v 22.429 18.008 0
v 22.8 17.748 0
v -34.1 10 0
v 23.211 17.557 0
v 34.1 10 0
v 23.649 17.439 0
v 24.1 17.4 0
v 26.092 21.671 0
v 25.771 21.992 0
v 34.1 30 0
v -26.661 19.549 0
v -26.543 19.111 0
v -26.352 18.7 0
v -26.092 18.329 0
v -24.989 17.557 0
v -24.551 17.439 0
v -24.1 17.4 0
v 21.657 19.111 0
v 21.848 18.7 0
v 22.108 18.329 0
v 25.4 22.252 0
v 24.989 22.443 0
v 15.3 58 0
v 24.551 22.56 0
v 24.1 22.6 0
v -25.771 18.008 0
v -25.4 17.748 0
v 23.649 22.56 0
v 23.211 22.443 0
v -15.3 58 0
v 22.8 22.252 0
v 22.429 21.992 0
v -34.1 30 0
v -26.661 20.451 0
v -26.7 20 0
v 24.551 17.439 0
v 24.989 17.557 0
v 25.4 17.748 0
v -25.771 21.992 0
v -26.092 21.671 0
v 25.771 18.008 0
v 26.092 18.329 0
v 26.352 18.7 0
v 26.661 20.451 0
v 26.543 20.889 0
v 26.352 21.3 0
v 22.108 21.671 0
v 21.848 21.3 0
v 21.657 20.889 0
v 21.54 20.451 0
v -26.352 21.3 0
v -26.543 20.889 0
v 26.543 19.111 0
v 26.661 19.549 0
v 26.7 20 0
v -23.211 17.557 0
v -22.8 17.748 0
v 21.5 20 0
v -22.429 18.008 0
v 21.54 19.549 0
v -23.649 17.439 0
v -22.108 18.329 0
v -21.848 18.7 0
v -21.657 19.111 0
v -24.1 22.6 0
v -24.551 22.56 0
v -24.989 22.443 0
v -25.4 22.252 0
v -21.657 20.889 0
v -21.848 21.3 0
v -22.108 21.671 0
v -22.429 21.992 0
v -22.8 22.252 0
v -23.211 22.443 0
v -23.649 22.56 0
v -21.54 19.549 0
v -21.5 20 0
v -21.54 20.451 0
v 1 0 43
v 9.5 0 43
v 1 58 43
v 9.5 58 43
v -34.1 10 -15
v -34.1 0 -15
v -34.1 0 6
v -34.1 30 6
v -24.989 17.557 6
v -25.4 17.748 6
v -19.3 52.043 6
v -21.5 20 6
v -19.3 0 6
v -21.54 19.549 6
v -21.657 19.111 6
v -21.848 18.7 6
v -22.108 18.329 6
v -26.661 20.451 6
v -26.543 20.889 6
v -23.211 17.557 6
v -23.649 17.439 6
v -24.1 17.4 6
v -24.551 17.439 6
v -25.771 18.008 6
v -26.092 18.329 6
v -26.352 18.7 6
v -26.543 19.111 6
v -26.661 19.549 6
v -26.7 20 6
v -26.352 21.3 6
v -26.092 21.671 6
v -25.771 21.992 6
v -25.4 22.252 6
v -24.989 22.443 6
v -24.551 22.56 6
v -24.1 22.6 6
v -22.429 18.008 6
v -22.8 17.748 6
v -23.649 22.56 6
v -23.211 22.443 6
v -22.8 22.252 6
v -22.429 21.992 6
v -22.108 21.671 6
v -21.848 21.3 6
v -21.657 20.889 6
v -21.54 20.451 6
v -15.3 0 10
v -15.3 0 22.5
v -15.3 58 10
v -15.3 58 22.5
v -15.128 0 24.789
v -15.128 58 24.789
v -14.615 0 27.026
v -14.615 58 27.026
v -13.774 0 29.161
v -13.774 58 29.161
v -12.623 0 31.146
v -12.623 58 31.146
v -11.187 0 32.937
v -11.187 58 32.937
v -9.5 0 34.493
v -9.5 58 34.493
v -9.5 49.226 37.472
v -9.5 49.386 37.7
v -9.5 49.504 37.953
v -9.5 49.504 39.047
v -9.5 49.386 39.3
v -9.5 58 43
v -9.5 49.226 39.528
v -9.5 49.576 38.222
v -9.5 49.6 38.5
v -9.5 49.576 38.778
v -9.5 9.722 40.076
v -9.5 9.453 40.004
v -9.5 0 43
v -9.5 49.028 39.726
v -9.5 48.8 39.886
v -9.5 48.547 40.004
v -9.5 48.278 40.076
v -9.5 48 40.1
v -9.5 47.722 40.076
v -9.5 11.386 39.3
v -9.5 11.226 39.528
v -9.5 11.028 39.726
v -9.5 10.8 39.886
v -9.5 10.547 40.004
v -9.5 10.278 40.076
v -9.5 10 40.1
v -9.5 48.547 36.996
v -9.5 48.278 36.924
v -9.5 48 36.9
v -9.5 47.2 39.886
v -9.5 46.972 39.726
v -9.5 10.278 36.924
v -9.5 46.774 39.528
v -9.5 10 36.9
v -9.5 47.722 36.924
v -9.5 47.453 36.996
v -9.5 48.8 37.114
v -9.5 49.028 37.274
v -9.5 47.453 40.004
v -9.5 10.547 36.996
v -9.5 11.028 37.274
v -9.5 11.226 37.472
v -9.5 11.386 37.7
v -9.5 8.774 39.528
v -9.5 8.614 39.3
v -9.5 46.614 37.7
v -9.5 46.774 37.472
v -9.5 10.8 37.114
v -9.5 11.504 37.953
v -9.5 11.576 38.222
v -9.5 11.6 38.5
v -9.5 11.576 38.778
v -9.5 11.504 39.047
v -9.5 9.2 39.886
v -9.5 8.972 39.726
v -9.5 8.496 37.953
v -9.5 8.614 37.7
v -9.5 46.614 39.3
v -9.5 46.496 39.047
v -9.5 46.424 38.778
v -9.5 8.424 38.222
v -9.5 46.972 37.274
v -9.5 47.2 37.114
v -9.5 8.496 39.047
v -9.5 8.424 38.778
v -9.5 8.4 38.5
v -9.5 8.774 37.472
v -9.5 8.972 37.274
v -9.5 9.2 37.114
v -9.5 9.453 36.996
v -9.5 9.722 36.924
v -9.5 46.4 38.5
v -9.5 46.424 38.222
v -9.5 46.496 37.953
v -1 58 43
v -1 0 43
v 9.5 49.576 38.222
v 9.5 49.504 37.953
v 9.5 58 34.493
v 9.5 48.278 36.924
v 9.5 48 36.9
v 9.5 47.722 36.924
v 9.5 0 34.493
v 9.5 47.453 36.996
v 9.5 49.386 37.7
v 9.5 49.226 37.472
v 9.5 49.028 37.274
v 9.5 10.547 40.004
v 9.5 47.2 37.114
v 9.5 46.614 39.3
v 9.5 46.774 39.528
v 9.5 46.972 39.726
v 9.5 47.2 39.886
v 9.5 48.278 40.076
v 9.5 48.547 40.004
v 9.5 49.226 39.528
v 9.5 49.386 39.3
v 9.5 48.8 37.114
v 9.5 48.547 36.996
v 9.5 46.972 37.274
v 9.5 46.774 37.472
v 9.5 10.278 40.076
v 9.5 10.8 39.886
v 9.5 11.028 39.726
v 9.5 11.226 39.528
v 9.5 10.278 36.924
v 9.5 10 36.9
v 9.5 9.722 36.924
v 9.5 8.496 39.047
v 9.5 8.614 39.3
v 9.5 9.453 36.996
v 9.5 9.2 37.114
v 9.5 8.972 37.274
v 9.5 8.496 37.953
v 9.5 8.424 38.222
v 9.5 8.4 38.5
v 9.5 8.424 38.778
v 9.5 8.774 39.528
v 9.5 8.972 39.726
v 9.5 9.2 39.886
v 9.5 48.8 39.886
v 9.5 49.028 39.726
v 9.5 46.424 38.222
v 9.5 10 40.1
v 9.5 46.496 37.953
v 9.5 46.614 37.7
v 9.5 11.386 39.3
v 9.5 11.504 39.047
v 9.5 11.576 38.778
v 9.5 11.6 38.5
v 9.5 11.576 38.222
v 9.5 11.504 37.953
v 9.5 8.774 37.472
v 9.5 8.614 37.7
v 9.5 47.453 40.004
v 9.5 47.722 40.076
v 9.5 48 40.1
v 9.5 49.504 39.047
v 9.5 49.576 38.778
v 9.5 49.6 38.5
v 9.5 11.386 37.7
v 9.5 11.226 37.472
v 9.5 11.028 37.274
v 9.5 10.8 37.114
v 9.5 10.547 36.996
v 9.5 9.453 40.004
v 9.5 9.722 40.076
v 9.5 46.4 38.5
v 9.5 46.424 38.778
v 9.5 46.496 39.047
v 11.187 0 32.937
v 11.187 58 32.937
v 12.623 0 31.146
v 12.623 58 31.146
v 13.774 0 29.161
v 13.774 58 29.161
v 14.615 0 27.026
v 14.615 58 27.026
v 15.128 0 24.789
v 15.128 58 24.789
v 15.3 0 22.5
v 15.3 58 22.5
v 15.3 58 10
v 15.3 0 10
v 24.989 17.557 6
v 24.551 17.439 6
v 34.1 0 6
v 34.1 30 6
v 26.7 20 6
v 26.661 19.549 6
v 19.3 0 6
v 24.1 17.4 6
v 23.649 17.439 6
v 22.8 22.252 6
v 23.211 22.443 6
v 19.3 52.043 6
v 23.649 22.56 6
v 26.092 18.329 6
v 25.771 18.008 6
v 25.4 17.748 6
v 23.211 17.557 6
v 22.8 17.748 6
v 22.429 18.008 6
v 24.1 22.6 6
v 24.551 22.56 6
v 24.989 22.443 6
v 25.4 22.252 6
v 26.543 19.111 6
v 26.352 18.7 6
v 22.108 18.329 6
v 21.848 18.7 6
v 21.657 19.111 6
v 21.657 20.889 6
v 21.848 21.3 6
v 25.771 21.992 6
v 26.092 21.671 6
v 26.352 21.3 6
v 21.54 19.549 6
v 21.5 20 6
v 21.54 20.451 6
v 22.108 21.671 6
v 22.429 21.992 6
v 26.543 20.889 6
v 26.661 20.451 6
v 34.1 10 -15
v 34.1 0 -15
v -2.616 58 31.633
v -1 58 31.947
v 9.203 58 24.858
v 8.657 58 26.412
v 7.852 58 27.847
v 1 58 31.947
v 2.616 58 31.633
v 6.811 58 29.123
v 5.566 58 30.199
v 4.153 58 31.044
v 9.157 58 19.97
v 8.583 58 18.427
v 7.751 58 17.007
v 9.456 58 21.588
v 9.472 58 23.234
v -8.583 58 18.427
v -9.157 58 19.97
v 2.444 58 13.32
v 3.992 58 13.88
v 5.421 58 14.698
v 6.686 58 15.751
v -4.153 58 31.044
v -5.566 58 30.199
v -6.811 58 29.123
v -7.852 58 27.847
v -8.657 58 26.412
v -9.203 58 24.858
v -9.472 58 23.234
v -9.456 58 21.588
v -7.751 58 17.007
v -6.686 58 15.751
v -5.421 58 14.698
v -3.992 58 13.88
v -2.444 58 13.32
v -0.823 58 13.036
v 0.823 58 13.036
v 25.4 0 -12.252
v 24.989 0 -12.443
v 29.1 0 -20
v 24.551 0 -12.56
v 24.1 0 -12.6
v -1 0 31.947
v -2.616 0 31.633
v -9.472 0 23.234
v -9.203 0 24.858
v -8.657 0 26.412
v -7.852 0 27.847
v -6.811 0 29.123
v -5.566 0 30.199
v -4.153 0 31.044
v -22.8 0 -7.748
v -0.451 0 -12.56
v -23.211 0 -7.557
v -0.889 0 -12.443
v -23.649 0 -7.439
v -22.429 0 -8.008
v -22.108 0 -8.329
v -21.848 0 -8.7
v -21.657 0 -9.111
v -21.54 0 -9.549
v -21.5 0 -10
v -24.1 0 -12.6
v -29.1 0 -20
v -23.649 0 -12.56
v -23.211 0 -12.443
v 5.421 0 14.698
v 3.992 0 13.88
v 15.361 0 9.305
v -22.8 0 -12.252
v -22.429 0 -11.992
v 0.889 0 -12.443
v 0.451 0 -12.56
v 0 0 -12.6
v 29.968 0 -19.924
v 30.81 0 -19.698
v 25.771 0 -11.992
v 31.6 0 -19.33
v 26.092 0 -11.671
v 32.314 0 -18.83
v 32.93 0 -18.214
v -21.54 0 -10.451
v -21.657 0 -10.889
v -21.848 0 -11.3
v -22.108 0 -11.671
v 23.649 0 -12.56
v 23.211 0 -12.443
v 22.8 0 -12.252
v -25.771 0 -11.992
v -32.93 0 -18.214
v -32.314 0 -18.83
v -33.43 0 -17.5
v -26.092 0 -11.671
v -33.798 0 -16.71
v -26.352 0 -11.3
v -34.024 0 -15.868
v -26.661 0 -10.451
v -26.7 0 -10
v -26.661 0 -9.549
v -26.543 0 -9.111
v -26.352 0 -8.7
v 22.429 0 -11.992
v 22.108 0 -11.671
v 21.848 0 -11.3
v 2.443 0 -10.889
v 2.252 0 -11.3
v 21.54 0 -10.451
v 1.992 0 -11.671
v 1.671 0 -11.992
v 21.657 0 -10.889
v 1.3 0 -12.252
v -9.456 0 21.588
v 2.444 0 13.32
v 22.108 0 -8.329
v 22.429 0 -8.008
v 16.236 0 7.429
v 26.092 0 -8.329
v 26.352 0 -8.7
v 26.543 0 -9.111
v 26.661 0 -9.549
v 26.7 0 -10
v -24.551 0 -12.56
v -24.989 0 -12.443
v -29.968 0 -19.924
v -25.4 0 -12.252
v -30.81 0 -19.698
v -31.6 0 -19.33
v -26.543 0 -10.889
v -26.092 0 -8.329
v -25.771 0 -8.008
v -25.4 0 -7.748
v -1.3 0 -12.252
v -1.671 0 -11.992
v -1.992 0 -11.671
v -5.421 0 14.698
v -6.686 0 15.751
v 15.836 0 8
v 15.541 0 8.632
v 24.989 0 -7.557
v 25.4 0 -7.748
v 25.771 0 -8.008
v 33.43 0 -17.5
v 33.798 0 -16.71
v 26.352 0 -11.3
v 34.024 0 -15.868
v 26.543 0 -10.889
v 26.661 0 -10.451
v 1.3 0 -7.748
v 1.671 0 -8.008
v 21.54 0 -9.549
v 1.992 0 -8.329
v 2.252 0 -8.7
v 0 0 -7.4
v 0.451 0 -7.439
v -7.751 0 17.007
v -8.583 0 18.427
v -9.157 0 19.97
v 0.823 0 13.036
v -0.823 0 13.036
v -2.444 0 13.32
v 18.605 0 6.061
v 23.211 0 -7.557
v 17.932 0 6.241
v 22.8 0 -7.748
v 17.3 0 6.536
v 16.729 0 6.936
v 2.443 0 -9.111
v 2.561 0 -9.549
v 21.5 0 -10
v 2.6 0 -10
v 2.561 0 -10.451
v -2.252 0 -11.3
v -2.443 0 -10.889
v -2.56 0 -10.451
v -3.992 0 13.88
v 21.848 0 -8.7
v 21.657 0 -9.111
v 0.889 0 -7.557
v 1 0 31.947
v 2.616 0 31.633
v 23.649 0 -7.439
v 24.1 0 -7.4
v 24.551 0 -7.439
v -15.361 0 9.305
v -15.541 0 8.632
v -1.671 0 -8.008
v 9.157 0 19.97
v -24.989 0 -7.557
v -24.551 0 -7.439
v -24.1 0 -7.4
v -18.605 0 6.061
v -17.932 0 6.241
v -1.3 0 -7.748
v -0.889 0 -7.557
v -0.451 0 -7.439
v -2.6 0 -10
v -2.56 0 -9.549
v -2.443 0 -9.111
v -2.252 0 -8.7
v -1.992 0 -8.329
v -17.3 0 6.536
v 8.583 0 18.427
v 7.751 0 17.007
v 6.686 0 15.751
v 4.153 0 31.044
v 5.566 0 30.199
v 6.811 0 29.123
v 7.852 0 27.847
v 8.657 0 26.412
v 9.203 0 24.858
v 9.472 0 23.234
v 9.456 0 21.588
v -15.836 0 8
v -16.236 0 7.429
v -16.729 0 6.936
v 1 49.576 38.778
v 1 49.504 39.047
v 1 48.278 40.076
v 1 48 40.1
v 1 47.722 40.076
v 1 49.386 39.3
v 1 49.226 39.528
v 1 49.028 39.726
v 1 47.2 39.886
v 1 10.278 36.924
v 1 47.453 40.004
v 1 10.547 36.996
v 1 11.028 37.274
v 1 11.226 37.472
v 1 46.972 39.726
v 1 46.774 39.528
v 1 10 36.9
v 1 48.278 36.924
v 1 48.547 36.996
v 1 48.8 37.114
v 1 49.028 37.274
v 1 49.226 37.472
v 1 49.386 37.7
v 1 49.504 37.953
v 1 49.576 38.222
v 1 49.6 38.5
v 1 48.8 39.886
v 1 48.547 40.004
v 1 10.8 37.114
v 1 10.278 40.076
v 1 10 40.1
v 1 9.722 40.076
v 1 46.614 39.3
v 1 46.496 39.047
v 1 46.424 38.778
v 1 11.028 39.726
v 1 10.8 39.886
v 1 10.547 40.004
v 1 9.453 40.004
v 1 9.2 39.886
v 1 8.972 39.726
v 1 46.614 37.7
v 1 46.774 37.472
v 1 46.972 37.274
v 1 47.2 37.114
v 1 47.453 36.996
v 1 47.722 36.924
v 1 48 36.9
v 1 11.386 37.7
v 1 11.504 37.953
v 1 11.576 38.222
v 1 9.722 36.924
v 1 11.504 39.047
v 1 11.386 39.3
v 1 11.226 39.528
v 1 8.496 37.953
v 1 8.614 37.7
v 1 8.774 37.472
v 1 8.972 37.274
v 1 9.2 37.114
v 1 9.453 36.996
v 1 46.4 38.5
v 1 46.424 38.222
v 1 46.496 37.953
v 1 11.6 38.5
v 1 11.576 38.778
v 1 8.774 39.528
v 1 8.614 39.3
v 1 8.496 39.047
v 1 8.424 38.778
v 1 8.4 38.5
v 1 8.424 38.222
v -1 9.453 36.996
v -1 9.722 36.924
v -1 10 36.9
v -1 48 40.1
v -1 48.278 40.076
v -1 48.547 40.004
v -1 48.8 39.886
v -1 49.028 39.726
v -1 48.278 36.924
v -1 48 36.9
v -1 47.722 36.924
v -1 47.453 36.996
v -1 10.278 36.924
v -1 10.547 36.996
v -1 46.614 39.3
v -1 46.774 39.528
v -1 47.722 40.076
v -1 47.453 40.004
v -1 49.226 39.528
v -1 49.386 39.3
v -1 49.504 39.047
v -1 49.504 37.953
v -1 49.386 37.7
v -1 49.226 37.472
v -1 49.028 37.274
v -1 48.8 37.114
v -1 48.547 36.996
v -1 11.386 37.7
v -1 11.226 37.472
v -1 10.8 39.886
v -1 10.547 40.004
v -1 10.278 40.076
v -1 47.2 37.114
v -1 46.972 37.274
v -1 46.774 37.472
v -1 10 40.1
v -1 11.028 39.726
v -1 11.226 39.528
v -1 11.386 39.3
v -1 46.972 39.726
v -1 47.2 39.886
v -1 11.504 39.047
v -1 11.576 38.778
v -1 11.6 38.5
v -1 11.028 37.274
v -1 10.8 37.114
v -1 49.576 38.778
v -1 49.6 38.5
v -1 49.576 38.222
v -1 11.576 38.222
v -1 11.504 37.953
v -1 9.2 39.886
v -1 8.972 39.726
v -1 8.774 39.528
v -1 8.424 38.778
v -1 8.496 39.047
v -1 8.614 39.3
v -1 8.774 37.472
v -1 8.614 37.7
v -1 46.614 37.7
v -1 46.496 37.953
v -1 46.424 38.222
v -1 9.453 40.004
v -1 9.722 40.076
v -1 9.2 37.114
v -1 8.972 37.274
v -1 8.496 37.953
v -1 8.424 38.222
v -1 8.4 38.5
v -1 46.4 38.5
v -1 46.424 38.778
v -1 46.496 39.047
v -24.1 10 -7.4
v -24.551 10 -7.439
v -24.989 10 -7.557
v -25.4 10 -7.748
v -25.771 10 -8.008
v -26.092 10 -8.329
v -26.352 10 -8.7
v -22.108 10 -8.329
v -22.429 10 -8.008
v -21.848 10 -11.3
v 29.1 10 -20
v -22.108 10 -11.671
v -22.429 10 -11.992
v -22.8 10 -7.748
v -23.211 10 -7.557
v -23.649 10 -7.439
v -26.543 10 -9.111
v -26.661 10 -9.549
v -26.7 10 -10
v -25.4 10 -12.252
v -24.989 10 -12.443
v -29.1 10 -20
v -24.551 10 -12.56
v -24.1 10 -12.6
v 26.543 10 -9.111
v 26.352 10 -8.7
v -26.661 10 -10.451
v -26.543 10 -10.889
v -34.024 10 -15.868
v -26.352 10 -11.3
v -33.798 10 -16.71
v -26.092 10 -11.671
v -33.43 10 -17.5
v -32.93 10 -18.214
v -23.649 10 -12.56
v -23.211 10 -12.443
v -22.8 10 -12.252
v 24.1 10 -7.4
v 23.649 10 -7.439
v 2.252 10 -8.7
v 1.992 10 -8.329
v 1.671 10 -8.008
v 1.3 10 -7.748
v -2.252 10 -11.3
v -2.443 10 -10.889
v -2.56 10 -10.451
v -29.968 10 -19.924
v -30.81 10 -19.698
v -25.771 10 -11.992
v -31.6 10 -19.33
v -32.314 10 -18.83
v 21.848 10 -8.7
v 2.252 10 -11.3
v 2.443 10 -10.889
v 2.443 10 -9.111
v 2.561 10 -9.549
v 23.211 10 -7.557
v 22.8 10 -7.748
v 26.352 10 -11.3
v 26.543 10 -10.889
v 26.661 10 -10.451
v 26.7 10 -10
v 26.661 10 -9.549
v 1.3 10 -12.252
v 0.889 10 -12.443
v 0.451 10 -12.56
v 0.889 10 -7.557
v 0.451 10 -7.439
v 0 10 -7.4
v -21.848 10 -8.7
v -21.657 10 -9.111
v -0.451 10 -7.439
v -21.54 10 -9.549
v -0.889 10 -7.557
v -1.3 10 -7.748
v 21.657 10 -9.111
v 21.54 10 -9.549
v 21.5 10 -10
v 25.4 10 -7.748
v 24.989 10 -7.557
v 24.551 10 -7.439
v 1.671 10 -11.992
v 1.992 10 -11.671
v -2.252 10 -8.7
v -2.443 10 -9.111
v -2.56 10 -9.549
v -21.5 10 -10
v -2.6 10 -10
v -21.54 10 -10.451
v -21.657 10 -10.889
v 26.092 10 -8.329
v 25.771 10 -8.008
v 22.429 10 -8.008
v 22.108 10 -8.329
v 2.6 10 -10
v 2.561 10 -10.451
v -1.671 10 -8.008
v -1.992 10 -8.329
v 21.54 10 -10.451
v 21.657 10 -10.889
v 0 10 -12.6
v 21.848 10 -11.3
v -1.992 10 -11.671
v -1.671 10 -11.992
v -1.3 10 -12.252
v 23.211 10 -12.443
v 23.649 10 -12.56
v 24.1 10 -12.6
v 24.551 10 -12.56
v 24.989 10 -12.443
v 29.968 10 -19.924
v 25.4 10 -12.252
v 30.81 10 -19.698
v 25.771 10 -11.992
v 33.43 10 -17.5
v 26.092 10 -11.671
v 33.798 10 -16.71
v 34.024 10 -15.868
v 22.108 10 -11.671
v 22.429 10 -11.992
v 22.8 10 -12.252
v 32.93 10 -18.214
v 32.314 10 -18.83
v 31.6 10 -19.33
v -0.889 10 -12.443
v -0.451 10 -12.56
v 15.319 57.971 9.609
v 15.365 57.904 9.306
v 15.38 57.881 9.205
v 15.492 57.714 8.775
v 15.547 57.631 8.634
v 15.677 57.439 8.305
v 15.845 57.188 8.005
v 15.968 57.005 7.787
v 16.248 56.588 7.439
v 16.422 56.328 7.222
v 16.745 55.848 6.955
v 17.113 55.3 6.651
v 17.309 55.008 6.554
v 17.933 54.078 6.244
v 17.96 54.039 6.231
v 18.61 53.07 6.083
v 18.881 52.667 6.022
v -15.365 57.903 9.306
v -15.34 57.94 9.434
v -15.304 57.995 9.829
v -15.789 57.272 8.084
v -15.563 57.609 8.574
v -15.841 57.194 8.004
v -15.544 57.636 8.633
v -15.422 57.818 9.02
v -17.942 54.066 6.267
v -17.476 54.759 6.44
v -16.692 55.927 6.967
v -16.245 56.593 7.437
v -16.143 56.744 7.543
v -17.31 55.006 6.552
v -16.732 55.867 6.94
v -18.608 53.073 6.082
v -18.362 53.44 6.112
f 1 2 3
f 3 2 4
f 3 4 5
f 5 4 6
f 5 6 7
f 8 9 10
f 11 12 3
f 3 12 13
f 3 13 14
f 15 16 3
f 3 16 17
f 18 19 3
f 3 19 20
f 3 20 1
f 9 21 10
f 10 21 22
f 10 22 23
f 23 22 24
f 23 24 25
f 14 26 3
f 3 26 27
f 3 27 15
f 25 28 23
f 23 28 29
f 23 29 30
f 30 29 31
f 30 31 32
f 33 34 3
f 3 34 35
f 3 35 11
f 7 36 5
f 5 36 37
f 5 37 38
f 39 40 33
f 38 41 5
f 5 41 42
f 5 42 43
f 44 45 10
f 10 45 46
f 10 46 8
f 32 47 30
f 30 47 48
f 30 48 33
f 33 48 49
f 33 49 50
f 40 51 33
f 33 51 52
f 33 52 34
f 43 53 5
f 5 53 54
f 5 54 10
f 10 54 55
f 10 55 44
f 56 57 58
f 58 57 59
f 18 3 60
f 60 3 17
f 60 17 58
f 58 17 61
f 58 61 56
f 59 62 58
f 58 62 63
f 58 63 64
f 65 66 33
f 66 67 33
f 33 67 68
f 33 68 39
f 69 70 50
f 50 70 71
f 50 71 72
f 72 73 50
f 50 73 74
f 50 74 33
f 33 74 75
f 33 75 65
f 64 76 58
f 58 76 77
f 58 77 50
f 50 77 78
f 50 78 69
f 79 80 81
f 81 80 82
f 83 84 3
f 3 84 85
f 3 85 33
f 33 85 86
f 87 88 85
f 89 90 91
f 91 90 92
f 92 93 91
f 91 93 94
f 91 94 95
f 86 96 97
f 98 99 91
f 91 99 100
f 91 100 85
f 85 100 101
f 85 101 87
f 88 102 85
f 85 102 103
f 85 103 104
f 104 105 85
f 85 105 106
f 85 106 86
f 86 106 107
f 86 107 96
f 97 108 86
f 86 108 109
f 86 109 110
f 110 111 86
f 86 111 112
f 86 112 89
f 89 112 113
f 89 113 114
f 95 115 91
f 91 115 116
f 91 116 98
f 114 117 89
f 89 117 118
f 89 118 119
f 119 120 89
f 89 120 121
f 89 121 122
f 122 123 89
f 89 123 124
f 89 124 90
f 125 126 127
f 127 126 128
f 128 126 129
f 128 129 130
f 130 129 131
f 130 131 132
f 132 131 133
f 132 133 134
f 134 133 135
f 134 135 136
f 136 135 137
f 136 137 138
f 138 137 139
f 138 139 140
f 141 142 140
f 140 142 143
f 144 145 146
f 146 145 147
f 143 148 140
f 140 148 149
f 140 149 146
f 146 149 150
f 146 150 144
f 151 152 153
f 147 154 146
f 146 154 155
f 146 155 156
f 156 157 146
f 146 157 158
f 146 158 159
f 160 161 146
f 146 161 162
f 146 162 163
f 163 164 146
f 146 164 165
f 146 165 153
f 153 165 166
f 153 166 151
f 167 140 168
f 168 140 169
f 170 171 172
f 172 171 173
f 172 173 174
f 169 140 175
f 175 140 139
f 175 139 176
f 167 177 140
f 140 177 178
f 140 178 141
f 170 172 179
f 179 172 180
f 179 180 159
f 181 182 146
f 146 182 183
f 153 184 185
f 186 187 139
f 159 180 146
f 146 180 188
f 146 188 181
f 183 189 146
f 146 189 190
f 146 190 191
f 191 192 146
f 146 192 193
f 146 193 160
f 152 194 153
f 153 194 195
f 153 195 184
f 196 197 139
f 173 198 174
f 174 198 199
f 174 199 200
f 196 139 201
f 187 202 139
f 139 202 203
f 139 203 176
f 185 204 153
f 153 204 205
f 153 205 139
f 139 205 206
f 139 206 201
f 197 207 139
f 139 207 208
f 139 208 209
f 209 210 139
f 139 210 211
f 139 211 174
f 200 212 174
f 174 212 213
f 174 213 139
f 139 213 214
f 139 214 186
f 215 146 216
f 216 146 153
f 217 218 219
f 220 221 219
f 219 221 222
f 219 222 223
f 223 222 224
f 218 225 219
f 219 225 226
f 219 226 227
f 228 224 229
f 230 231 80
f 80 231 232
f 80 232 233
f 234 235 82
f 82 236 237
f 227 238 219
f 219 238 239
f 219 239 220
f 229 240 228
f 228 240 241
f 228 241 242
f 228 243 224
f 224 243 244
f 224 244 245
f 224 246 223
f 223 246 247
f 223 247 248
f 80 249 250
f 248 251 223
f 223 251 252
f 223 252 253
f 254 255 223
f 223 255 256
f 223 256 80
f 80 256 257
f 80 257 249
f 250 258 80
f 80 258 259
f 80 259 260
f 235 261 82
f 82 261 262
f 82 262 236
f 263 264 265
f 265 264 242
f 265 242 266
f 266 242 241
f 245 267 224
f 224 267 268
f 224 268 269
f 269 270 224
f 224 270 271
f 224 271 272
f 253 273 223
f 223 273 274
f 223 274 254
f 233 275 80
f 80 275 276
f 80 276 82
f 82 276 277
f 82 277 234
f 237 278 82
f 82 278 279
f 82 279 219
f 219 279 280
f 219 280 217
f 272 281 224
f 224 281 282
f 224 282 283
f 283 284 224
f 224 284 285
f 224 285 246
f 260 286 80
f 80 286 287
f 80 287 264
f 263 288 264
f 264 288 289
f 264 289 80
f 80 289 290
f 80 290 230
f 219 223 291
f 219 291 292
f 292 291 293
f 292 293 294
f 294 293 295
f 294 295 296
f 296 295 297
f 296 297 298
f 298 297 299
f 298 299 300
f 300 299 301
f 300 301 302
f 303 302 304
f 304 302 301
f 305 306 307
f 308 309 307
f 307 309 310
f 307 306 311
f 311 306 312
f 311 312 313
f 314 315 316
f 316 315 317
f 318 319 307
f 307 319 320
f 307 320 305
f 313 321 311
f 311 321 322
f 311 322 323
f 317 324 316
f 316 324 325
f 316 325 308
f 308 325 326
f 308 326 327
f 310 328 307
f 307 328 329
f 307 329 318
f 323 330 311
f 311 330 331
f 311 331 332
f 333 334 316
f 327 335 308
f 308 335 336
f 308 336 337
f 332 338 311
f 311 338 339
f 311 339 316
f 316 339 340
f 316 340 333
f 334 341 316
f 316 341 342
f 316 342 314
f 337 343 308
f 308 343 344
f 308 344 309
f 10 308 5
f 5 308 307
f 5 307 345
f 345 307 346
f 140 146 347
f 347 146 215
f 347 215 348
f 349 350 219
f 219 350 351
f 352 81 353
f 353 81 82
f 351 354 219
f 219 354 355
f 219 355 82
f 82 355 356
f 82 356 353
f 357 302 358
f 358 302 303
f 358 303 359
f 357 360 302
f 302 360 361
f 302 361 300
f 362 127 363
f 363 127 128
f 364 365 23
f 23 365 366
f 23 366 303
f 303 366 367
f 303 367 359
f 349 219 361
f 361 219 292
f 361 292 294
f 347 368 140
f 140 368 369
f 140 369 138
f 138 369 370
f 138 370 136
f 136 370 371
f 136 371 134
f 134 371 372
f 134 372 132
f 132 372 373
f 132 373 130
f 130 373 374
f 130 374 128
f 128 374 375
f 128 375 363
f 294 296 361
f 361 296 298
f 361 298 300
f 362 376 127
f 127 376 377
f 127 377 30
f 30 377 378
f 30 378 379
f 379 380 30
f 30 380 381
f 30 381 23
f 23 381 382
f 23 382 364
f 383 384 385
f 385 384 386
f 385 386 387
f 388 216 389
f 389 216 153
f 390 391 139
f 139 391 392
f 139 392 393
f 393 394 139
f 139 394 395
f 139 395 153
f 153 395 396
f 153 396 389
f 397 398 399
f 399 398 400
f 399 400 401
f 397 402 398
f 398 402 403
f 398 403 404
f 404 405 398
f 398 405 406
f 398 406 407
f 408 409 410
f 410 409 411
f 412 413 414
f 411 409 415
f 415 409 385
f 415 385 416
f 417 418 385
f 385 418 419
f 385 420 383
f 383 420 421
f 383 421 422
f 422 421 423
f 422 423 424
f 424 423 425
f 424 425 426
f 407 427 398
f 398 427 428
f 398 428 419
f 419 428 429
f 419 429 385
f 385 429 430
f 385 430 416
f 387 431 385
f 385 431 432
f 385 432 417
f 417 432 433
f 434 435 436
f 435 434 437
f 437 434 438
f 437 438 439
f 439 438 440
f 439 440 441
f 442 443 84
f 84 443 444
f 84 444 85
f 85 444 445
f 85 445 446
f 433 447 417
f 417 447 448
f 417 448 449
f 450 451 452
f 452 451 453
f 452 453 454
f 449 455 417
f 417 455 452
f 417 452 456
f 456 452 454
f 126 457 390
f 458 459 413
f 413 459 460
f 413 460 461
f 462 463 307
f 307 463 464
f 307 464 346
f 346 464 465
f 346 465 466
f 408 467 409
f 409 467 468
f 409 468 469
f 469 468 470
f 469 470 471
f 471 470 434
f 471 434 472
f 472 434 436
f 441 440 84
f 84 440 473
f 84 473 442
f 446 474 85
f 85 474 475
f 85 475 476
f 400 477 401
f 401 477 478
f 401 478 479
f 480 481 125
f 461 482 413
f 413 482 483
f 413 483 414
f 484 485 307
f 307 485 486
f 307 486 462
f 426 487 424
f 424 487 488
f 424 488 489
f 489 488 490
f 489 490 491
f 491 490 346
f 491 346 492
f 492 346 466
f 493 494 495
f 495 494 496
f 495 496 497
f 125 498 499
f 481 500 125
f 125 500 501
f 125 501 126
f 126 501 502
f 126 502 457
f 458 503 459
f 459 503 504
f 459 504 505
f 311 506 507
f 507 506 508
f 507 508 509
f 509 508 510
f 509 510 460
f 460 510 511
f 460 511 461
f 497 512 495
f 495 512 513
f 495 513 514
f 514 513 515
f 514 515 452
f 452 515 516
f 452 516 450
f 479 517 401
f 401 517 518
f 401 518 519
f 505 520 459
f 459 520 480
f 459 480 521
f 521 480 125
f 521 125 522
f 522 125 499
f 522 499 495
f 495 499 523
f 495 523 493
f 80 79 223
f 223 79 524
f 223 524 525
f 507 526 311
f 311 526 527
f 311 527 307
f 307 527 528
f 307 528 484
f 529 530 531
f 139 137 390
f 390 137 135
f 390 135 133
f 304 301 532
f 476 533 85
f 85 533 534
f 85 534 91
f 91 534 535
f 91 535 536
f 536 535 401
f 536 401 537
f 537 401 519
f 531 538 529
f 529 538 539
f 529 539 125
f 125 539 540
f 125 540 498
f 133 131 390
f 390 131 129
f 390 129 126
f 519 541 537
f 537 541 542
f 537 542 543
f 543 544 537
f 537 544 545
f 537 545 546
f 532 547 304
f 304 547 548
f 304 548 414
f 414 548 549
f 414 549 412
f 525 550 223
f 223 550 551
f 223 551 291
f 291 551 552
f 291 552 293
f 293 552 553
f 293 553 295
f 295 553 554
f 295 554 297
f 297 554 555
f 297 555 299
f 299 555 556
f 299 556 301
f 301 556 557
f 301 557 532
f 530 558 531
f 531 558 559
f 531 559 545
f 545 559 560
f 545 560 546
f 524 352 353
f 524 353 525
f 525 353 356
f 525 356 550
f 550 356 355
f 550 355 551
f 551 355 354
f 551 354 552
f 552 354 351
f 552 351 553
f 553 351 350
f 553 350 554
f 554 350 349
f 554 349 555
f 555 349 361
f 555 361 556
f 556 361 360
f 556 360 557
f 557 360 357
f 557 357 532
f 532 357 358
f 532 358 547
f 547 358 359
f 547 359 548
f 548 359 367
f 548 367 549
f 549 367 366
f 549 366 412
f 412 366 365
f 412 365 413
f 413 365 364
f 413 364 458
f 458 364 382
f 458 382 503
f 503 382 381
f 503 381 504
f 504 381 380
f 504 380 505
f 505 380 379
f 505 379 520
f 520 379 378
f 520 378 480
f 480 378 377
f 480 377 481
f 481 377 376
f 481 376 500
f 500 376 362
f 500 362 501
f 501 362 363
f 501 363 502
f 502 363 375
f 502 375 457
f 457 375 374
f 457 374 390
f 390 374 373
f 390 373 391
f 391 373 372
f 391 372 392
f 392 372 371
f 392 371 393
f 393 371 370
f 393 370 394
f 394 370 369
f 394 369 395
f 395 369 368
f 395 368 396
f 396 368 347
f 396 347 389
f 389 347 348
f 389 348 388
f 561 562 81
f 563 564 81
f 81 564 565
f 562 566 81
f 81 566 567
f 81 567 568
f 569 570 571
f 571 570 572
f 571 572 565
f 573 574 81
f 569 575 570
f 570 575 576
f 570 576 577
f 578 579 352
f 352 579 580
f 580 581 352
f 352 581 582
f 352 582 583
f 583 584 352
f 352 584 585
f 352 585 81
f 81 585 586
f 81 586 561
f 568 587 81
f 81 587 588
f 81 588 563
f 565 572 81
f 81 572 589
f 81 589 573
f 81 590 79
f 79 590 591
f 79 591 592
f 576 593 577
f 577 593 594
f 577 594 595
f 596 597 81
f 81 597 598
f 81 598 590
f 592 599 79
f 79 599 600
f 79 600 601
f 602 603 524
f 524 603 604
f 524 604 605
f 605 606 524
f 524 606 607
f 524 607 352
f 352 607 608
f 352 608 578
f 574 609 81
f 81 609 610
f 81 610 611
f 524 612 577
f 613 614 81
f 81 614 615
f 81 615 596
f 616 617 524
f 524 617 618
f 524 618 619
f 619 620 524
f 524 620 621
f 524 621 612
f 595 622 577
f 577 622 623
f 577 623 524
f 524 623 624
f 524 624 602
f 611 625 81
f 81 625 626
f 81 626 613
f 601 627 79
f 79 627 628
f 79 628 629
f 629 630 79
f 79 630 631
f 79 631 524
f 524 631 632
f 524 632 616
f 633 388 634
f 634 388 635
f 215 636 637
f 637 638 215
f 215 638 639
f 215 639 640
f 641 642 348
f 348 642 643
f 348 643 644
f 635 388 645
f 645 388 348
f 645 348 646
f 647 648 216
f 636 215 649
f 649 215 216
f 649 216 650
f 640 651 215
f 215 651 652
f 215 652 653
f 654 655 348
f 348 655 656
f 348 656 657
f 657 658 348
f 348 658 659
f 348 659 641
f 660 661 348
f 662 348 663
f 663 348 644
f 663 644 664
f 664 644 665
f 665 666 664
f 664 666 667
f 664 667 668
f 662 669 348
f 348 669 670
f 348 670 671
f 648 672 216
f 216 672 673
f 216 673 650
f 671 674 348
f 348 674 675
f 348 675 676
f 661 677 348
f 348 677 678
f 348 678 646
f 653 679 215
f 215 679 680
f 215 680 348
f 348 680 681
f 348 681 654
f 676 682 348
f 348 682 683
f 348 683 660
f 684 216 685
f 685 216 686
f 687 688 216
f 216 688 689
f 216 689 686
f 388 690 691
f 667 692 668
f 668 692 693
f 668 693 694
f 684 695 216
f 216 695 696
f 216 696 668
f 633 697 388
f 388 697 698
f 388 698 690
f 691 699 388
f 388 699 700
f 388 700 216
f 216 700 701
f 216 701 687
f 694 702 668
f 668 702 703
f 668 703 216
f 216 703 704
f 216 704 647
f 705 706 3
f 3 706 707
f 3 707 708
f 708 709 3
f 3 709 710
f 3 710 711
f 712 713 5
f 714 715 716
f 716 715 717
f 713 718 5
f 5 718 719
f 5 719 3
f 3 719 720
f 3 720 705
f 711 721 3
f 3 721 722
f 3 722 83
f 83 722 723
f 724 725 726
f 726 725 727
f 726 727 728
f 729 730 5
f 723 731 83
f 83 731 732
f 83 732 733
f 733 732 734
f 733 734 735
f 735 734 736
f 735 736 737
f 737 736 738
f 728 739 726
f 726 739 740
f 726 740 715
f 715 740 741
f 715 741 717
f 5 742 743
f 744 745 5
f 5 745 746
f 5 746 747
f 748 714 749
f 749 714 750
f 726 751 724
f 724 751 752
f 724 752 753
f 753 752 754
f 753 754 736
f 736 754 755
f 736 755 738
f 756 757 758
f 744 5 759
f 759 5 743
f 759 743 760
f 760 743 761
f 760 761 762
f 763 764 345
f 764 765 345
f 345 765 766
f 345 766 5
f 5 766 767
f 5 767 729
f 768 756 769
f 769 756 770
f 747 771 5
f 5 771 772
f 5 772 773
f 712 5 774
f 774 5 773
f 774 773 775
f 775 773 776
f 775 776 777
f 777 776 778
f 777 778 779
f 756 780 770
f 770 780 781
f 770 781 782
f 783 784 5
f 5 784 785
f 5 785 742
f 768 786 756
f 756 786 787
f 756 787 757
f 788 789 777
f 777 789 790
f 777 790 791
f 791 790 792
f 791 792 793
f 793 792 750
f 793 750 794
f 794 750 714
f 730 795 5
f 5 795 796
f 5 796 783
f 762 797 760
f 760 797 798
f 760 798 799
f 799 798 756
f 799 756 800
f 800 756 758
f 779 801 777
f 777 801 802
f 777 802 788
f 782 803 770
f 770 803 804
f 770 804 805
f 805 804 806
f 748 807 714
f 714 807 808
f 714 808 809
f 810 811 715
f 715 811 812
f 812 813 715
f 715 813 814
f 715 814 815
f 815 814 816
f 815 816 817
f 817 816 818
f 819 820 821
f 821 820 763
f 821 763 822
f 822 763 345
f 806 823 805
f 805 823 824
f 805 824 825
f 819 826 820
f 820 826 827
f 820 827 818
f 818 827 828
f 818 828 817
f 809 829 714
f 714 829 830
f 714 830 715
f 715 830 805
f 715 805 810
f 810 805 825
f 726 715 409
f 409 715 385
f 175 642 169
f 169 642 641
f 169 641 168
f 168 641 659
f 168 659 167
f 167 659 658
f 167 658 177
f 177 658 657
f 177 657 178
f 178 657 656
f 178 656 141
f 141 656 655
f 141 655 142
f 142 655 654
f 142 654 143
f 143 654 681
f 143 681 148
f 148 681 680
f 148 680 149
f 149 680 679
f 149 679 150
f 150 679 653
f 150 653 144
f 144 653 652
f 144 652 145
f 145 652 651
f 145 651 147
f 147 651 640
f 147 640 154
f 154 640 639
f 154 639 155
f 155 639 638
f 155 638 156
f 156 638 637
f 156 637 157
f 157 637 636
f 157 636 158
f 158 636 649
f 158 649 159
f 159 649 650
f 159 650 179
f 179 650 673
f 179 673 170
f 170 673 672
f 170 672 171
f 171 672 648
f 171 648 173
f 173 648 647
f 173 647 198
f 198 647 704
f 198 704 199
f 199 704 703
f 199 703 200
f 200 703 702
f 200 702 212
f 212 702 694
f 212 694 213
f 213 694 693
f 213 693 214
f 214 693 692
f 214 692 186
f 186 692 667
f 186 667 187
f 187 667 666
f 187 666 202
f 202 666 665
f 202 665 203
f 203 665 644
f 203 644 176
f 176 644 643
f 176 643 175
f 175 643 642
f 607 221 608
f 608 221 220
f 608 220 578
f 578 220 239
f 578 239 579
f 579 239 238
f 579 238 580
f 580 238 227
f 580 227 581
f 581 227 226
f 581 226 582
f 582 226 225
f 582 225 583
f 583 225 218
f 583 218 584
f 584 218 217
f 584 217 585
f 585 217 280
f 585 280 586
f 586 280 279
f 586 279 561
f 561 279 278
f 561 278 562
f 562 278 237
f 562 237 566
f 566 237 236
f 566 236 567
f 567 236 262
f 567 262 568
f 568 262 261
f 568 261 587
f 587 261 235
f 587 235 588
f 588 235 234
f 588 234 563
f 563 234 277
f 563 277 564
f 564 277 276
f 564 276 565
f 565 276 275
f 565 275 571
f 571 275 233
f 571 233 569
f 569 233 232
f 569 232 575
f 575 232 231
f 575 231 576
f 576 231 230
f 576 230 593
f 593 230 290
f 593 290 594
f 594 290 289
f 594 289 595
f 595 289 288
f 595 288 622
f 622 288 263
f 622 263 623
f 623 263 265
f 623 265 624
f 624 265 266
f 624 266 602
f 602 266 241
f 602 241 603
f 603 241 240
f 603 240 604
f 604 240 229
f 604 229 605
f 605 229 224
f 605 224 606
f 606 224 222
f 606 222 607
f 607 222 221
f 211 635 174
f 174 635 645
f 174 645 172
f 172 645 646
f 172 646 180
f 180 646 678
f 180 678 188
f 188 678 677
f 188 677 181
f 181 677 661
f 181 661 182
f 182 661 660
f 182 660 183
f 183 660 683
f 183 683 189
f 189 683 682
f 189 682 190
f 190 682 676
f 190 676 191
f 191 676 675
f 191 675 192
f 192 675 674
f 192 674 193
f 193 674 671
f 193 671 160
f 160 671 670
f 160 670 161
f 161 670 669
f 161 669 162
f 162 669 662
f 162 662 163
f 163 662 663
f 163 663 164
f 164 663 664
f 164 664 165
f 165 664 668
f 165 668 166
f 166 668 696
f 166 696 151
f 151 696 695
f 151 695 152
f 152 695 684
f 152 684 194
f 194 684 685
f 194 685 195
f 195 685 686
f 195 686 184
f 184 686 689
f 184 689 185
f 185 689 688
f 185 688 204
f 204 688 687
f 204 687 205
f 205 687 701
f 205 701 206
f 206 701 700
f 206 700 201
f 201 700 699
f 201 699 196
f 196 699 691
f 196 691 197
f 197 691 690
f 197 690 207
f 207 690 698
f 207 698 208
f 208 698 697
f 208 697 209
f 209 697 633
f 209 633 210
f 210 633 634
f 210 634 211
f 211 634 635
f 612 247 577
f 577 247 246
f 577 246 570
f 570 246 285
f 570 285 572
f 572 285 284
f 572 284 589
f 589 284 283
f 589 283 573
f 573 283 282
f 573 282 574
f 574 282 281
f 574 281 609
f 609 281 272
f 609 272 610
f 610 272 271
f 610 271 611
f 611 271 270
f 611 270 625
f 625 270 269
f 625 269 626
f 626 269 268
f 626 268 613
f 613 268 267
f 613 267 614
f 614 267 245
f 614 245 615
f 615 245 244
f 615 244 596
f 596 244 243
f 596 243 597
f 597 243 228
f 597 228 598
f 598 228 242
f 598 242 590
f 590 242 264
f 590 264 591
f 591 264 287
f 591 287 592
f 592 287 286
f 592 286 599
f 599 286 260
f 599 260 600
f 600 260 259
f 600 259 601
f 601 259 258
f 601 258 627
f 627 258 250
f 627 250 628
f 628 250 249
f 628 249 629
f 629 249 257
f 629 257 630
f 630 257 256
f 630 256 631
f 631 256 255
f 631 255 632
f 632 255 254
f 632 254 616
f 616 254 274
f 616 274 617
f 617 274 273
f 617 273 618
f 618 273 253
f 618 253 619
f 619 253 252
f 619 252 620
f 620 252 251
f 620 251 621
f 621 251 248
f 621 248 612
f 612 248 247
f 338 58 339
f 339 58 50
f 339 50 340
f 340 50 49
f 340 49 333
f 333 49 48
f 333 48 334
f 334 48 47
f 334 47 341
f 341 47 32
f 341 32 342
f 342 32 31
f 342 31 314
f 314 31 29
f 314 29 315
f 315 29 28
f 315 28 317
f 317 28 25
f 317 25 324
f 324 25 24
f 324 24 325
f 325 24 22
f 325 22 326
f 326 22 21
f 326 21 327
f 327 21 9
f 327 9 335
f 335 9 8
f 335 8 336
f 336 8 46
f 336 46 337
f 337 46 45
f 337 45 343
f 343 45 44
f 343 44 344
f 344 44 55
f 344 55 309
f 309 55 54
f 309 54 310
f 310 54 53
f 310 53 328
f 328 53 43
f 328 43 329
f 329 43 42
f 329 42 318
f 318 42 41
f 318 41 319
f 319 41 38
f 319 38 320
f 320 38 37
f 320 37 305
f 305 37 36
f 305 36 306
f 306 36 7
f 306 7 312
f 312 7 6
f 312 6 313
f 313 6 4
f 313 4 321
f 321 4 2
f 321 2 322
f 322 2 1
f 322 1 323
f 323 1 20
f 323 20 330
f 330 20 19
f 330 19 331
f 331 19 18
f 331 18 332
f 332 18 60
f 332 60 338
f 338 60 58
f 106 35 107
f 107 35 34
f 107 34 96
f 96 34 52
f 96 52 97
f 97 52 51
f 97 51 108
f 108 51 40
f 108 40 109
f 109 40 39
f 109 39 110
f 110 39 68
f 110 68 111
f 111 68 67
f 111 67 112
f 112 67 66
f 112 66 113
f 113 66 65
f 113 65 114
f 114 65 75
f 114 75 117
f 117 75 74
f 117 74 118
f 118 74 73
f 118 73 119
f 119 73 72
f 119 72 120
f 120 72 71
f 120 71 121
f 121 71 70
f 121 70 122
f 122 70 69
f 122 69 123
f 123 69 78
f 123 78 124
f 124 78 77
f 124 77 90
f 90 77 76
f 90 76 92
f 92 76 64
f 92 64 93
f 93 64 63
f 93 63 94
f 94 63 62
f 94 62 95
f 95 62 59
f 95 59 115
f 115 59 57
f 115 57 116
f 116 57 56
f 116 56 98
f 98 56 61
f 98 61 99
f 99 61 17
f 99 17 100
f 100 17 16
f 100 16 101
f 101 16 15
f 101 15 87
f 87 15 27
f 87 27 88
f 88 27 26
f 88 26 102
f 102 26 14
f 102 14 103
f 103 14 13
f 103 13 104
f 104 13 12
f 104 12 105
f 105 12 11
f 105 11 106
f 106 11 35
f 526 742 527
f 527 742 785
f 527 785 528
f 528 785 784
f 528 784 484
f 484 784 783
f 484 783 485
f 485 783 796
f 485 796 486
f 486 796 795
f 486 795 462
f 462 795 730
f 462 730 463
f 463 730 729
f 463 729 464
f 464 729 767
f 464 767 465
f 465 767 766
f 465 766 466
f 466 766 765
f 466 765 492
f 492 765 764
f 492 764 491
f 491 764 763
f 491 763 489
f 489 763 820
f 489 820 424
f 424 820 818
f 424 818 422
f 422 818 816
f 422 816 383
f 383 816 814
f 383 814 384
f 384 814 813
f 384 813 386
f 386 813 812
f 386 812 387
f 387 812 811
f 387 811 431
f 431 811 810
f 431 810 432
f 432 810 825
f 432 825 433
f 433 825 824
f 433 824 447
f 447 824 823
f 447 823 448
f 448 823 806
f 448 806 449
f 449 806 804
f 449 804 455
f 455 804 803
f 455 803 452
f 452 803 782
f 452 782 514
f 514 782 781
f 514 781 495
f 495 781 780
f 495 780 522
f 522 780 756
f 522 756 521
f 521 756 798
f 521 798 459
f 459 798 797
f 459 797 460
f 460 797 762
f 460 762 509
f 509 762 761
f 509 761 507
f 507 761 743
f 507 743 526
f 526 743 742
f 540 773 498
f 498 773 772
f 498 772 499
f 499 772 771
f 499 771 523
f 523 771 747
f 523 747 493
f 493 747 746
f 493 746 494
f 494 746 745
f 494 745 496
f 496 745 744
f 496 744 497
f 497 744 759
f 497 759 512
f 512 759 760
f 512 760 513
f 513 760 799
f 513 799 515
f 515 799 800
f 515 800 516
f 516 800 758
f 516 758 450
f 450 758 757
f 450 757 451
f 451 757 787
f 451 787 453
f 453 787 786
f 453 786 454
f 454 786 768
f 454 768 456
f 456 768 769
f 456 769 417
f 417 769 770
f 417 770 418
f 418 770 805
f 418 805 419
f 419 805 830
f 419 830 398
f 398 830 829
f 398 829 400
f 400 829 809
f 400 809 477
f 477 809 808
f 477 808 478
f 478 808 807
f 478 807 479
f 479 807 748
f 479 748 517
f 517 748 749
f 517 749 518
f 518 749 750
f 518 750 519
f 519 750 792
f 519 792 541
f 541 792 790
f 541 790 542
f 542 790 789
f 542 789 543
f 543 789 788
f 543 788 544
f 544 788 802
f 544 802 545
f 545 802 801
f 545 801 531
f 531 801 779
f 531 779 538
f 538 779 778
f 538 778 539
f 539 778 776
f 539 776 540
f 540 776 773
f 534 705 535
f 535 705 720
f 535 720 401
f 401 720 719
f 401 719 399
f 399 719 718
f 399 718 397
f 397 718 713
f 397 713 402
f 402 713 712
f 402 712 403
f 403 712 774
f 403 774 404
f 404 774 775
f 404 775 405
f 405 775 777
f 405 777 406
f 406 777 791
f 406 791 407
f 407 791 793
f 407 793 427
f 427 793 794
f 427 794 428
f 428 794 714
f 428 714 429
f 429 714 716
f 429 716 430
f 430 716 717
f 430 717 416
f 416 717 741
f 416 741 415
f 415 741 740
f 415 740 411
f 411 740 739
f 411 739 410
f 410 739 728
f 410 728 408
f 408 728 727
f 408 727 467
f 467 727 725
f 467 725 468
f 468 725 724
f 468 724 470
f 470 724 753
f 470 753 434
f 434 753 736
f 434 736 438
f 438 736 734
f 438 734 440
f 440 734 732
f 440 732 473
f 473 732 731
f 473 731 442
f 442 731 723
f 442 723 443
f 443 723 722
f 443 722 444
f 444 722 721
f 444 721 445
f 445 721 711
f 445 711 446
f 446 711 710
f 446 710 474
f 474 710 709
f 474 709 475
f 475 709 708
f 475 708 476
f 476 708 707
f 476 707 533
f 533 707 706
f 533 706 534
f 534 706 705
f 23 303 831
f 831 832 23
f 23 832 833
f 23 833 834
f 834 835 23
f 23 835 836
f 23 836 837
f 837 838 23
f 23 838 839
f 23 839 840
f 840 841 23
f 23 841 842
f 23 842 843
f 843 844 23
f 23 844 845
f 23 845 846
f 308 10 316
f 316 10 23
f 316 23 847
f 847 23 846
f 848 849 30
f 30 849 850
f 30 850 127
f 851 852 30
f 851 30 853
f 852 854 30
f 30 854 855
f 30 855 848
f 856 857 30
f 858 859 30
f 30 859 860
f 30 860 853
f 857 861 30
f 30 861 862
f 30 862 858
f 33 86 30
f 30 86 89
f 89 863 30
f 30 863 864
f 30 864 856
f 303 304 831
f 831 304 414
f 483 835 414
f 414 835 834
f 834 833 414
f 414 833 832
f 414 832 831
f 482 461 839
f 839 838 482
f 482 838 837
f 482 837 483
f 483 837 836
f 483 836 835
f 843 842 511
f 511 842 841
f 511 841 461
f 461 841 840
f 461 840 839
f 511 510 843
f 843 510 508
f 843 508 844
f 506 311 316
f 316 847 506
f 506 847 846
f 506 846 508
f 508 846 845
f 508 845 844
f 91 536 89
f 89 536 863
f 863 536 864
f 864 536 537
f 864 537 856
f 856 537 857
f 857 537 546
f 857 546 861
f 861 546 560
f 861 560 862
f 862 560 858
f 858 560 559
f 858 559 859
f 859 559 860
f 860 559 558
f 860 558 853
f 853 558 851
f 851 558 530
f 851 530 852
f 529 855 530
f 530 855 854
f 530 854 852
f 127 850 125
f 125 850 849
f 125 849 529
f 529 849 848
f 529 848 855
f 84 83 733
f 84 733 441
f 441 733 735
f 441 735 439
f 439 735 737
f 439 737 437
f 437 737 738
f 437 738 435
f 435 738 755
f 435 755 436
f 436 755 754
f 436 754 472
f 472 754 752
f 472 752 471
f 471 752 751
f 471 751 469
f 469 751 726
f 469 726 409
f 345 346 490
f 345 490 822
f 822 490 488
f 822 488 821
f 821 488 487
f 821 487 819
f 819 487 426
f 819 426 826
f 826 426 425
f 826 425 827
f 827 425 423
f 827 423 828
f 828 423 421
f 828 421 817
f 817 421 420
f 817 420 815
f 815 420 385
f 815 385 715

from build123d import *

# Parameters (mm, degrees)
BOSS_EXTRUDE1_DEPTH = 58
CUT_EXTRUDE1_DEPTH  = 80.848669369
SKETCH3_W           = 68.2
SKETCH3_H           = 10
BOSS_EXTRUDE2_DEPTH = 20
SKETCH4_R           = 1.6
CUT_EXTRUDE2_DEPTH  = 85.344294413
SKETCH5_R           = 2.6
CUT_EXTRUDE3_DEPTH  = 80.848669369
SKETCH6_R           = 2.6
CUT_EXTRUDE4_DEPTH  = 73.909601562
CUT_EXTRUDE5_DEPTH  = 77.784178058
FILLET1_R           = 4
FILLET2_R           = 5


with BuildPart() as part:
    # Sketch1 → Boss-Extrude1 (new body)
    with BuildSketch(Plane(origin=(0, 0, 0), x_dir=(1, 0, 0), z_dir=(0, 1, 0))):
        with BuildLine():
            Line((0, 0), (34.1, 0))
            Line((34.1, 0), (34.1, -6))
            Line((34.1, -6), (15.3, -6))
            Line((15.3, -6), (15.3, -22.5))
            ThreePointArc((15.3, -22.5), (13.77388834, -29.161080993), (9.5, -34.49333148))
            Line((9.5, -34.49333148), (9.5, -43))
            Line((9.5, -43), (-9.5, -43))
            Line((-9.5, -43), (-9.5, -34.49333148))
            ThreePointArc((-9.5, -34.49333148), (-13.77388834, -29.161080993), (-15.3, -22.5))
            Line((-15.3, -22.5), (-15.3, -6))
            Line((-15.3, -6), (-34.1, -6))
            Line((-34.1, -6), (-34.1, 0))
            Line((-34.1, 0), (0, 0))
        make_face()
    extrude(amount=BOSS_EXTRUDE1_DEPTH)

    # Sketch2 → Cut-Extrude1 (cut, through all)
    with BuildSketch(Plane(origin=(0, 58, 0), x_dir=(1, 0, 0), z_dir=(0, 1, 0))):
        with BuildLine():
            Line((-1, -31.947221814), (-1, -43))
            Line((-1, -43), (1, -43))
            Line((1, -43), (1, -31.947221814))
            ThreePointArc((1, -31.947221814), (0, -13), (-1, -31.947221814))
        make_face()
    extrude(amount=-CUT_EXTRUDE1_DEPTH, mode=Mode.SUBTRACT)

    # Sketch3 → Boss-Extrude2 (add)
    with BuildSketch(Plane(origin=(0, 0, 0), x_dir=(-1, 0, 0), z_dir=(0, 0, -1))):
        with Locations((0, 5)):
            Rectangle(SKETCH3_W, SKETCH3_H)
    extrude(amount=BOSS_EXTRUDE2_DEPTH)

    # Sketch4 → Cut-Extrude2 (cut, through all)
    with BuildSketch(Plane(origin=(9.5, 0, 0), x_dir=(0, 0, -1), z_dir=(1, 0, 0))):
        with Locations((-38.5, 48)):
            Circle(SKETCH4_R)
        with Locations((-38.5, 10)):
            Circle(SKETCH4_R)
    extrude(amount=-CUT_EXTRUDE2_DEPTH, mode=Mode.SUBTRACT)

    # Sketch5 → Cut-Extrude3 (cut, through all)
    with BuildSketch(Plane(origin=(0, 0, 0), x_dir=(-1, 0, 0), z_dir=(0, 0, -1))):
        with Locations((-24.1, 20)):
            Circle(SKETCH5_R)
        with Locations((24.1, 20)):
            Circle(SKETCH5_R)
    extrude(amount=-CUT_EXTRUDE3_DEPTH, mode=Mode.SUBTRACT)

    # Sketch6 → Cut-Extrude4 (cut, through all)
    with BuildSketch(Plane(origin=(0, 10, 0), x_dir=(1, 0, 0), z_dir=(0, 1, 0))):
        with Locations(Location((24.1, 10, 0), (0, 0, 270))):
            Circle(SKETCH6_R)
        with Locations(Location((0, 10, 0), (0, 0, 270))):
            Circle(SKETCH6_R)
        with Locations(Location((-24.1, 10, 0), (0, 0, 270))):
            Circle(SKETCH6_R)
    extrude(amount=-CUT_EXTRUDE4_DEPTH, mode=Mode.SUBTRACT)

    # Sketch7 → Cut-Extrude5 (cut, through all)
    with BuildSketch(Plane.XY.offset(6)):
        Polygon((15.3, 58), (34.1, 30), (34.1, 58), align=None)
        Polygon((-15.3, 58), (-34.1, 58), (-34.1, 30), align=None)
    extrude(amount=-CUT_EXTRUDE5_DEPTH, mode=Mode.SUBTRACT)

    # Fillet1
    fillet1_edges = [part.edges().sort_by_distance(p)[0] for p in [
        (15.3, 29, 6),
        (-15.3, 29, 6),
    ]]
    fillet(fillet1_edges, radius=FILLET1_R)

    # Fillet2
    fillet2_edges = [part.edges().sort_by_distance(p)[0] for p in [
        (-34.1, 5, -20),
        (34.1, 5, -20),
    ]]
    fillet(fillet2_edges, radius=FILLET2_R)


solid = part.part
